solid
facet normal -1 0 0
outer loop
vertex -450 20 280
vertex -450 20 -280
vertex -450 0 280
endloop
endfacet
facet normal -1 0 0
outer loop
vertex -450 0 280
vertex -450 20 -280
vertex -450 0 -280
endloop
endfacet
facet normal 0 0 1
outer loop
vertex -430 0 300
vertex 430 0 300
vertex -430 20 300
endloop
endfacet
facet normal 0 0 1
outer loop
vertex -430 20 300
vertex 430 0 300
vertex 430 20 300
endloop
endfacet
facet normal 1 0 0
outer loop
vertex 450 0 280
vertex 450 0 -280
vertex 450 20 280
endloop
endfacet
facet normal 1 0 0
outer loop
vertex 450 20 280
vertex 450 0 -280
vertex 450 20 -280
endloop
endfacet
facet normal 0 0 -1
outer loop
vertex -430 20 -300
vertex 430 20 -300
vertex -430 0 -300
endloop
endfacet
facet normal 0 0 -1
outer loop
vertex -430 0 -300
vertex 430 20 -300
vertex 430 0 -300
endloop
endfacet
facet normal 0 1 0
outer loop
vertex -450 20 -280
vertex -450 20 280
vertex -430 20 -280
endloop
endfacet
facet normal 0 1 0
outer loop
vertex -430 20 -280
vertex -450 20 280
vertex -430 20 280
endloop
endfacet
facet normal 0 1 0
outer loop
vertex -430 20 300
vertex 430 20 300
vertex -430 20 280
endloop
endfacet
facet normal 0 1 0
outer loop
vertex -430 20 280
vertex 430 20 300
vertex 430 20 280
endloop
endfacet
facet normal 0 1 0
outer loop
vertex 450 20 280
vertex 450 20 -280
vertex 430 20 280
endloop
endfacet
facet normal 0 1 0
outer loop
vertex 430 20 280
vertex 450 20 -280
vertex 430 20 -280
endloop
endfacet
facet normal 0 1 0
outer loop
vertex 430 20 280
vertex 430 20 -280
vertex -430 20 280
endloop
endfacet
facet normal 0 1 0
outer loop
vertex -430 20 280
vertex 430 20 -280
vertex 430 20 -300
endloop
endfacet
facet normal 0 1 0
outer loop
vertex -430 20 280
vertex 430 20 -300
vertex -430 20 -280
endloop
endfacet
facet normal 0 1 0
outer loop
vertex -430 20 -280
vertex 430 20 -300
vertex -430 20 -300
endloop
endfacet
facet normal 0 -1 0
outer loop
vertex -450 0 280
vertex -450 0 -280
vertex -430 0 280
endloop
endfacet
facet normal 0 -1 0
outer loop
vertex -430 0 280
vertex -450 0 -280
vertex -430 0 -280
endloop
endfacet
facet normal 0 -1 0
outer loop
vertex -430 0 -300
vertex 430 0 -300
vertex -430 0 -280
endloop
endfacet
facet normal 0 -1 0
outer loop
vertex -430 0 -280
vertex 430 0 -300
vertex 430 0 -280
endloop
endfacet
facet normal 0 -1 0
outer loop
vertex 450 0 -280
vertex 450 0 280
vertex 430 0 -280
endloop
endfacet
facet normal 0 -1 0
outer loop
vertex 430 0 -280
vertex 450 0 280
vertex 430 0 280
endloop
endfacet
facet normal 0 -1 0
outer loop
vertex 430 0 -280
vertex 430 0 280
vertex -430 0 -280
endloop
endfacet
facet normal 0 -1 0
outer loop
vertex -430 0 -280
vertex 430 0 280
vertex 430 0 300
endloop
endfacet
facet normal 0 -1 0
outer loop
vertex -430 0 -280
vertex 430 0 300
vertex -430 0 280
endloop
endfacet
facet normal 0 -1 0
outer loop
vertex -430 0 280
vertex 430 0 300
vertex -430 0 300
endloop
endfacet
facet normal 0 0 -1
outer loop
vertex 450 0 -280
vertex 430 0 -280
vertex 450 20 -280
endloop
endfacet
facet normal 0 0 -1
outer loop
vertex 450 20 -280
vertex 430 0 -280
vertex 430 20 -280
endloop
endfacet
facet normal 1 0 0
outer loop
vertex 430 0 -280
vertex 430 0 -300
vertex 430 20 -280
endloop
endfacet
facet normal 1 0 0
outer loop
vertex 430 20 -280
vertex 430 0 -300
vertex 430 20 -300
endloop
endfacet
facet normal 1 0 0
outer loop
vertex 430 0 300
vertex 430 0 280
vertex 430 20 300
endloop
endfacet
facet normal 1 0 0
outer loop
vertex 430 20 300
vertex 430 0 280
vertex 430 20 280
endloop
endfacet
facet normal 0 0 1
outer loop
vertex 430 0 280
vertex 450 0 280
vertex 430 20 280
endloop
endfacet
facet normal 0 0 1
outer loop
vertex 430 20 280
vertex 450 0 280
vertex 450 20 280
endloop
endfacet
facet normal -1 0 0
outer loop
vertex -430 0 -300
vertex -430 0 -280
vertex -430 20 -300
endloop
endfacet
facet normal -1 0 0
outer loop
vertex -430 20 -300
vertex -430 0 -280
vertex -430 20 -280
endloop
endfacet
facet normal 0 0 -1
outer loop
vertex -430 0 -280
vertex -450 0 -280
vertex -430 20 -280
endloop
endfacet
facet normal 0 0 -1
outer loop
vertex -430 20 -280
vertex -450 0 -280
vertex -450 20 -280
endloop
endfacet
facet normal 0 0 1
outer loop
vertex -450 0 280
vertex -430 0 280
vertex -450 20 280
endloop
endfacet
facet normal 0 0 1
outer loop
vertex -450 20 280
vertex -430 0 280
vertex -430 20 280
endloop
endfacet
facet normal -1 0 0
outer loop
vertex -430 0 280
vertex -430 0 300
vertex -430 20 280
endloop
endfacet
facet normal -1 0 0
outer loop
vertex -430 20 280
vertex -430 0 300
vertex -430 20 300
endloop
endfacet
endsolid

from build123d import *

# Parameters (mm, degrees)
SKETCH2_W           = 900
SKETCH2_H           = 600
BOSS_EXTRUDE1_DEPTH = 20
SKETCH4_W           = 16.490398782
SKETCH4_H           = 20.158553923
BOSS_EXTRUDE3_DEPTH = 20
SKETCH7_W           = 20
SKETCH7_H           = 20
CUT_EXTRUDE2_DEPTH  = 20
SKETCH8_W           = 20
SKETCH8_H           = 20
CUT_EXTRUDE3_DEPTH  = 20
SKETCH10_W          = 20
SKETCH10_H          = 20
CUT_EXTRUDE4_DEPTH  = 20
SKETCH11_W          = 20
SKETCH11_H          = 20
CUT_EXTRUDE5_DEPTH  = 20


with BuildPart() as part:
    # Sketch2 → Boss-Extrude1 (new body)
    with BuildSketch(Plane(origin=(0, 0, 0), x_dir=(1, 0, 0), z_dir=(0, 1, 0))):
        Rectangle(SKETCH2_W, SKETCH2_H)
    extrude(amount=BOSS_EXTRUDE1_DEPTH)

    # Sketch4 → Boss-Extrude3 (add)
    with BuildSketch(Plane(origin=(0, 20, 0), x_dir=(1, 0, 0), z_dir=(0, 1, 0))):
        with Locations((441.754800609, 289.920723039)):
            Rectangle(SKETCH4_W, SKETCH4_H)
    extrude(amount=-BOSS_EXTRUDE3_DEPTH)

    # Sketch7 → Cut-Extrude2 (cut)
    with BuildSketch(Plane(origin=(0, 20, 0), x_dir=(1, 0, 0), z_dir=(0, 1, 0))):
        with Locations((440, 290)):
            Rectangle(SKETCH7_W, SKETCH7_H)
    extrude(amount=-CUT_EXTRUDE2_DEPTH, mode=Mode.SUBTRACT)

    # Sketch8 → Cut-Extrude3 (cut)
    with BuildSketch(Plane(origin=(0, 20, 0), x_dir=(1, 0, 0), z_dir=(0, 1, 0))):
        with Locations((440, -290)):
            Rectangle(SKETCH8_W, SKETCH8_H)
    extrude(amount=-CUT_EXTRUDE3_DEPTH, mode=Mode.SUBTRACT)

    # Sketch10 → Cut-Extrude4 (cut)
    with BuildSketch(Plane(origin=(0, 20, 0), x_dir=(1, 0, 0), z_dir=(0, 1, 0))):
        with Locations((-440, 290)):
            Rectangle(SKETCH10_W, SKETCH10_H)
    extrude(amount=-CUT_EXTRUDE4_DEPTH, mode=Mode.SUBTRACT)

    # Sketch11 → Cut-Extrude5 (cut)
    with BuildSketch(Plane(origin=(0, 20, 0), x_dir=(1, 0, 0), z_dir=(0, 1, 0))):
        with Locations((-440, -290)):
            Rectangle(SKETCH11_W, SKETCH11_H)
    extrude(amount=-CUT_EXTRUDE5_DEPTH, mode=Mode.SUBTRACT)


solid = part.part
